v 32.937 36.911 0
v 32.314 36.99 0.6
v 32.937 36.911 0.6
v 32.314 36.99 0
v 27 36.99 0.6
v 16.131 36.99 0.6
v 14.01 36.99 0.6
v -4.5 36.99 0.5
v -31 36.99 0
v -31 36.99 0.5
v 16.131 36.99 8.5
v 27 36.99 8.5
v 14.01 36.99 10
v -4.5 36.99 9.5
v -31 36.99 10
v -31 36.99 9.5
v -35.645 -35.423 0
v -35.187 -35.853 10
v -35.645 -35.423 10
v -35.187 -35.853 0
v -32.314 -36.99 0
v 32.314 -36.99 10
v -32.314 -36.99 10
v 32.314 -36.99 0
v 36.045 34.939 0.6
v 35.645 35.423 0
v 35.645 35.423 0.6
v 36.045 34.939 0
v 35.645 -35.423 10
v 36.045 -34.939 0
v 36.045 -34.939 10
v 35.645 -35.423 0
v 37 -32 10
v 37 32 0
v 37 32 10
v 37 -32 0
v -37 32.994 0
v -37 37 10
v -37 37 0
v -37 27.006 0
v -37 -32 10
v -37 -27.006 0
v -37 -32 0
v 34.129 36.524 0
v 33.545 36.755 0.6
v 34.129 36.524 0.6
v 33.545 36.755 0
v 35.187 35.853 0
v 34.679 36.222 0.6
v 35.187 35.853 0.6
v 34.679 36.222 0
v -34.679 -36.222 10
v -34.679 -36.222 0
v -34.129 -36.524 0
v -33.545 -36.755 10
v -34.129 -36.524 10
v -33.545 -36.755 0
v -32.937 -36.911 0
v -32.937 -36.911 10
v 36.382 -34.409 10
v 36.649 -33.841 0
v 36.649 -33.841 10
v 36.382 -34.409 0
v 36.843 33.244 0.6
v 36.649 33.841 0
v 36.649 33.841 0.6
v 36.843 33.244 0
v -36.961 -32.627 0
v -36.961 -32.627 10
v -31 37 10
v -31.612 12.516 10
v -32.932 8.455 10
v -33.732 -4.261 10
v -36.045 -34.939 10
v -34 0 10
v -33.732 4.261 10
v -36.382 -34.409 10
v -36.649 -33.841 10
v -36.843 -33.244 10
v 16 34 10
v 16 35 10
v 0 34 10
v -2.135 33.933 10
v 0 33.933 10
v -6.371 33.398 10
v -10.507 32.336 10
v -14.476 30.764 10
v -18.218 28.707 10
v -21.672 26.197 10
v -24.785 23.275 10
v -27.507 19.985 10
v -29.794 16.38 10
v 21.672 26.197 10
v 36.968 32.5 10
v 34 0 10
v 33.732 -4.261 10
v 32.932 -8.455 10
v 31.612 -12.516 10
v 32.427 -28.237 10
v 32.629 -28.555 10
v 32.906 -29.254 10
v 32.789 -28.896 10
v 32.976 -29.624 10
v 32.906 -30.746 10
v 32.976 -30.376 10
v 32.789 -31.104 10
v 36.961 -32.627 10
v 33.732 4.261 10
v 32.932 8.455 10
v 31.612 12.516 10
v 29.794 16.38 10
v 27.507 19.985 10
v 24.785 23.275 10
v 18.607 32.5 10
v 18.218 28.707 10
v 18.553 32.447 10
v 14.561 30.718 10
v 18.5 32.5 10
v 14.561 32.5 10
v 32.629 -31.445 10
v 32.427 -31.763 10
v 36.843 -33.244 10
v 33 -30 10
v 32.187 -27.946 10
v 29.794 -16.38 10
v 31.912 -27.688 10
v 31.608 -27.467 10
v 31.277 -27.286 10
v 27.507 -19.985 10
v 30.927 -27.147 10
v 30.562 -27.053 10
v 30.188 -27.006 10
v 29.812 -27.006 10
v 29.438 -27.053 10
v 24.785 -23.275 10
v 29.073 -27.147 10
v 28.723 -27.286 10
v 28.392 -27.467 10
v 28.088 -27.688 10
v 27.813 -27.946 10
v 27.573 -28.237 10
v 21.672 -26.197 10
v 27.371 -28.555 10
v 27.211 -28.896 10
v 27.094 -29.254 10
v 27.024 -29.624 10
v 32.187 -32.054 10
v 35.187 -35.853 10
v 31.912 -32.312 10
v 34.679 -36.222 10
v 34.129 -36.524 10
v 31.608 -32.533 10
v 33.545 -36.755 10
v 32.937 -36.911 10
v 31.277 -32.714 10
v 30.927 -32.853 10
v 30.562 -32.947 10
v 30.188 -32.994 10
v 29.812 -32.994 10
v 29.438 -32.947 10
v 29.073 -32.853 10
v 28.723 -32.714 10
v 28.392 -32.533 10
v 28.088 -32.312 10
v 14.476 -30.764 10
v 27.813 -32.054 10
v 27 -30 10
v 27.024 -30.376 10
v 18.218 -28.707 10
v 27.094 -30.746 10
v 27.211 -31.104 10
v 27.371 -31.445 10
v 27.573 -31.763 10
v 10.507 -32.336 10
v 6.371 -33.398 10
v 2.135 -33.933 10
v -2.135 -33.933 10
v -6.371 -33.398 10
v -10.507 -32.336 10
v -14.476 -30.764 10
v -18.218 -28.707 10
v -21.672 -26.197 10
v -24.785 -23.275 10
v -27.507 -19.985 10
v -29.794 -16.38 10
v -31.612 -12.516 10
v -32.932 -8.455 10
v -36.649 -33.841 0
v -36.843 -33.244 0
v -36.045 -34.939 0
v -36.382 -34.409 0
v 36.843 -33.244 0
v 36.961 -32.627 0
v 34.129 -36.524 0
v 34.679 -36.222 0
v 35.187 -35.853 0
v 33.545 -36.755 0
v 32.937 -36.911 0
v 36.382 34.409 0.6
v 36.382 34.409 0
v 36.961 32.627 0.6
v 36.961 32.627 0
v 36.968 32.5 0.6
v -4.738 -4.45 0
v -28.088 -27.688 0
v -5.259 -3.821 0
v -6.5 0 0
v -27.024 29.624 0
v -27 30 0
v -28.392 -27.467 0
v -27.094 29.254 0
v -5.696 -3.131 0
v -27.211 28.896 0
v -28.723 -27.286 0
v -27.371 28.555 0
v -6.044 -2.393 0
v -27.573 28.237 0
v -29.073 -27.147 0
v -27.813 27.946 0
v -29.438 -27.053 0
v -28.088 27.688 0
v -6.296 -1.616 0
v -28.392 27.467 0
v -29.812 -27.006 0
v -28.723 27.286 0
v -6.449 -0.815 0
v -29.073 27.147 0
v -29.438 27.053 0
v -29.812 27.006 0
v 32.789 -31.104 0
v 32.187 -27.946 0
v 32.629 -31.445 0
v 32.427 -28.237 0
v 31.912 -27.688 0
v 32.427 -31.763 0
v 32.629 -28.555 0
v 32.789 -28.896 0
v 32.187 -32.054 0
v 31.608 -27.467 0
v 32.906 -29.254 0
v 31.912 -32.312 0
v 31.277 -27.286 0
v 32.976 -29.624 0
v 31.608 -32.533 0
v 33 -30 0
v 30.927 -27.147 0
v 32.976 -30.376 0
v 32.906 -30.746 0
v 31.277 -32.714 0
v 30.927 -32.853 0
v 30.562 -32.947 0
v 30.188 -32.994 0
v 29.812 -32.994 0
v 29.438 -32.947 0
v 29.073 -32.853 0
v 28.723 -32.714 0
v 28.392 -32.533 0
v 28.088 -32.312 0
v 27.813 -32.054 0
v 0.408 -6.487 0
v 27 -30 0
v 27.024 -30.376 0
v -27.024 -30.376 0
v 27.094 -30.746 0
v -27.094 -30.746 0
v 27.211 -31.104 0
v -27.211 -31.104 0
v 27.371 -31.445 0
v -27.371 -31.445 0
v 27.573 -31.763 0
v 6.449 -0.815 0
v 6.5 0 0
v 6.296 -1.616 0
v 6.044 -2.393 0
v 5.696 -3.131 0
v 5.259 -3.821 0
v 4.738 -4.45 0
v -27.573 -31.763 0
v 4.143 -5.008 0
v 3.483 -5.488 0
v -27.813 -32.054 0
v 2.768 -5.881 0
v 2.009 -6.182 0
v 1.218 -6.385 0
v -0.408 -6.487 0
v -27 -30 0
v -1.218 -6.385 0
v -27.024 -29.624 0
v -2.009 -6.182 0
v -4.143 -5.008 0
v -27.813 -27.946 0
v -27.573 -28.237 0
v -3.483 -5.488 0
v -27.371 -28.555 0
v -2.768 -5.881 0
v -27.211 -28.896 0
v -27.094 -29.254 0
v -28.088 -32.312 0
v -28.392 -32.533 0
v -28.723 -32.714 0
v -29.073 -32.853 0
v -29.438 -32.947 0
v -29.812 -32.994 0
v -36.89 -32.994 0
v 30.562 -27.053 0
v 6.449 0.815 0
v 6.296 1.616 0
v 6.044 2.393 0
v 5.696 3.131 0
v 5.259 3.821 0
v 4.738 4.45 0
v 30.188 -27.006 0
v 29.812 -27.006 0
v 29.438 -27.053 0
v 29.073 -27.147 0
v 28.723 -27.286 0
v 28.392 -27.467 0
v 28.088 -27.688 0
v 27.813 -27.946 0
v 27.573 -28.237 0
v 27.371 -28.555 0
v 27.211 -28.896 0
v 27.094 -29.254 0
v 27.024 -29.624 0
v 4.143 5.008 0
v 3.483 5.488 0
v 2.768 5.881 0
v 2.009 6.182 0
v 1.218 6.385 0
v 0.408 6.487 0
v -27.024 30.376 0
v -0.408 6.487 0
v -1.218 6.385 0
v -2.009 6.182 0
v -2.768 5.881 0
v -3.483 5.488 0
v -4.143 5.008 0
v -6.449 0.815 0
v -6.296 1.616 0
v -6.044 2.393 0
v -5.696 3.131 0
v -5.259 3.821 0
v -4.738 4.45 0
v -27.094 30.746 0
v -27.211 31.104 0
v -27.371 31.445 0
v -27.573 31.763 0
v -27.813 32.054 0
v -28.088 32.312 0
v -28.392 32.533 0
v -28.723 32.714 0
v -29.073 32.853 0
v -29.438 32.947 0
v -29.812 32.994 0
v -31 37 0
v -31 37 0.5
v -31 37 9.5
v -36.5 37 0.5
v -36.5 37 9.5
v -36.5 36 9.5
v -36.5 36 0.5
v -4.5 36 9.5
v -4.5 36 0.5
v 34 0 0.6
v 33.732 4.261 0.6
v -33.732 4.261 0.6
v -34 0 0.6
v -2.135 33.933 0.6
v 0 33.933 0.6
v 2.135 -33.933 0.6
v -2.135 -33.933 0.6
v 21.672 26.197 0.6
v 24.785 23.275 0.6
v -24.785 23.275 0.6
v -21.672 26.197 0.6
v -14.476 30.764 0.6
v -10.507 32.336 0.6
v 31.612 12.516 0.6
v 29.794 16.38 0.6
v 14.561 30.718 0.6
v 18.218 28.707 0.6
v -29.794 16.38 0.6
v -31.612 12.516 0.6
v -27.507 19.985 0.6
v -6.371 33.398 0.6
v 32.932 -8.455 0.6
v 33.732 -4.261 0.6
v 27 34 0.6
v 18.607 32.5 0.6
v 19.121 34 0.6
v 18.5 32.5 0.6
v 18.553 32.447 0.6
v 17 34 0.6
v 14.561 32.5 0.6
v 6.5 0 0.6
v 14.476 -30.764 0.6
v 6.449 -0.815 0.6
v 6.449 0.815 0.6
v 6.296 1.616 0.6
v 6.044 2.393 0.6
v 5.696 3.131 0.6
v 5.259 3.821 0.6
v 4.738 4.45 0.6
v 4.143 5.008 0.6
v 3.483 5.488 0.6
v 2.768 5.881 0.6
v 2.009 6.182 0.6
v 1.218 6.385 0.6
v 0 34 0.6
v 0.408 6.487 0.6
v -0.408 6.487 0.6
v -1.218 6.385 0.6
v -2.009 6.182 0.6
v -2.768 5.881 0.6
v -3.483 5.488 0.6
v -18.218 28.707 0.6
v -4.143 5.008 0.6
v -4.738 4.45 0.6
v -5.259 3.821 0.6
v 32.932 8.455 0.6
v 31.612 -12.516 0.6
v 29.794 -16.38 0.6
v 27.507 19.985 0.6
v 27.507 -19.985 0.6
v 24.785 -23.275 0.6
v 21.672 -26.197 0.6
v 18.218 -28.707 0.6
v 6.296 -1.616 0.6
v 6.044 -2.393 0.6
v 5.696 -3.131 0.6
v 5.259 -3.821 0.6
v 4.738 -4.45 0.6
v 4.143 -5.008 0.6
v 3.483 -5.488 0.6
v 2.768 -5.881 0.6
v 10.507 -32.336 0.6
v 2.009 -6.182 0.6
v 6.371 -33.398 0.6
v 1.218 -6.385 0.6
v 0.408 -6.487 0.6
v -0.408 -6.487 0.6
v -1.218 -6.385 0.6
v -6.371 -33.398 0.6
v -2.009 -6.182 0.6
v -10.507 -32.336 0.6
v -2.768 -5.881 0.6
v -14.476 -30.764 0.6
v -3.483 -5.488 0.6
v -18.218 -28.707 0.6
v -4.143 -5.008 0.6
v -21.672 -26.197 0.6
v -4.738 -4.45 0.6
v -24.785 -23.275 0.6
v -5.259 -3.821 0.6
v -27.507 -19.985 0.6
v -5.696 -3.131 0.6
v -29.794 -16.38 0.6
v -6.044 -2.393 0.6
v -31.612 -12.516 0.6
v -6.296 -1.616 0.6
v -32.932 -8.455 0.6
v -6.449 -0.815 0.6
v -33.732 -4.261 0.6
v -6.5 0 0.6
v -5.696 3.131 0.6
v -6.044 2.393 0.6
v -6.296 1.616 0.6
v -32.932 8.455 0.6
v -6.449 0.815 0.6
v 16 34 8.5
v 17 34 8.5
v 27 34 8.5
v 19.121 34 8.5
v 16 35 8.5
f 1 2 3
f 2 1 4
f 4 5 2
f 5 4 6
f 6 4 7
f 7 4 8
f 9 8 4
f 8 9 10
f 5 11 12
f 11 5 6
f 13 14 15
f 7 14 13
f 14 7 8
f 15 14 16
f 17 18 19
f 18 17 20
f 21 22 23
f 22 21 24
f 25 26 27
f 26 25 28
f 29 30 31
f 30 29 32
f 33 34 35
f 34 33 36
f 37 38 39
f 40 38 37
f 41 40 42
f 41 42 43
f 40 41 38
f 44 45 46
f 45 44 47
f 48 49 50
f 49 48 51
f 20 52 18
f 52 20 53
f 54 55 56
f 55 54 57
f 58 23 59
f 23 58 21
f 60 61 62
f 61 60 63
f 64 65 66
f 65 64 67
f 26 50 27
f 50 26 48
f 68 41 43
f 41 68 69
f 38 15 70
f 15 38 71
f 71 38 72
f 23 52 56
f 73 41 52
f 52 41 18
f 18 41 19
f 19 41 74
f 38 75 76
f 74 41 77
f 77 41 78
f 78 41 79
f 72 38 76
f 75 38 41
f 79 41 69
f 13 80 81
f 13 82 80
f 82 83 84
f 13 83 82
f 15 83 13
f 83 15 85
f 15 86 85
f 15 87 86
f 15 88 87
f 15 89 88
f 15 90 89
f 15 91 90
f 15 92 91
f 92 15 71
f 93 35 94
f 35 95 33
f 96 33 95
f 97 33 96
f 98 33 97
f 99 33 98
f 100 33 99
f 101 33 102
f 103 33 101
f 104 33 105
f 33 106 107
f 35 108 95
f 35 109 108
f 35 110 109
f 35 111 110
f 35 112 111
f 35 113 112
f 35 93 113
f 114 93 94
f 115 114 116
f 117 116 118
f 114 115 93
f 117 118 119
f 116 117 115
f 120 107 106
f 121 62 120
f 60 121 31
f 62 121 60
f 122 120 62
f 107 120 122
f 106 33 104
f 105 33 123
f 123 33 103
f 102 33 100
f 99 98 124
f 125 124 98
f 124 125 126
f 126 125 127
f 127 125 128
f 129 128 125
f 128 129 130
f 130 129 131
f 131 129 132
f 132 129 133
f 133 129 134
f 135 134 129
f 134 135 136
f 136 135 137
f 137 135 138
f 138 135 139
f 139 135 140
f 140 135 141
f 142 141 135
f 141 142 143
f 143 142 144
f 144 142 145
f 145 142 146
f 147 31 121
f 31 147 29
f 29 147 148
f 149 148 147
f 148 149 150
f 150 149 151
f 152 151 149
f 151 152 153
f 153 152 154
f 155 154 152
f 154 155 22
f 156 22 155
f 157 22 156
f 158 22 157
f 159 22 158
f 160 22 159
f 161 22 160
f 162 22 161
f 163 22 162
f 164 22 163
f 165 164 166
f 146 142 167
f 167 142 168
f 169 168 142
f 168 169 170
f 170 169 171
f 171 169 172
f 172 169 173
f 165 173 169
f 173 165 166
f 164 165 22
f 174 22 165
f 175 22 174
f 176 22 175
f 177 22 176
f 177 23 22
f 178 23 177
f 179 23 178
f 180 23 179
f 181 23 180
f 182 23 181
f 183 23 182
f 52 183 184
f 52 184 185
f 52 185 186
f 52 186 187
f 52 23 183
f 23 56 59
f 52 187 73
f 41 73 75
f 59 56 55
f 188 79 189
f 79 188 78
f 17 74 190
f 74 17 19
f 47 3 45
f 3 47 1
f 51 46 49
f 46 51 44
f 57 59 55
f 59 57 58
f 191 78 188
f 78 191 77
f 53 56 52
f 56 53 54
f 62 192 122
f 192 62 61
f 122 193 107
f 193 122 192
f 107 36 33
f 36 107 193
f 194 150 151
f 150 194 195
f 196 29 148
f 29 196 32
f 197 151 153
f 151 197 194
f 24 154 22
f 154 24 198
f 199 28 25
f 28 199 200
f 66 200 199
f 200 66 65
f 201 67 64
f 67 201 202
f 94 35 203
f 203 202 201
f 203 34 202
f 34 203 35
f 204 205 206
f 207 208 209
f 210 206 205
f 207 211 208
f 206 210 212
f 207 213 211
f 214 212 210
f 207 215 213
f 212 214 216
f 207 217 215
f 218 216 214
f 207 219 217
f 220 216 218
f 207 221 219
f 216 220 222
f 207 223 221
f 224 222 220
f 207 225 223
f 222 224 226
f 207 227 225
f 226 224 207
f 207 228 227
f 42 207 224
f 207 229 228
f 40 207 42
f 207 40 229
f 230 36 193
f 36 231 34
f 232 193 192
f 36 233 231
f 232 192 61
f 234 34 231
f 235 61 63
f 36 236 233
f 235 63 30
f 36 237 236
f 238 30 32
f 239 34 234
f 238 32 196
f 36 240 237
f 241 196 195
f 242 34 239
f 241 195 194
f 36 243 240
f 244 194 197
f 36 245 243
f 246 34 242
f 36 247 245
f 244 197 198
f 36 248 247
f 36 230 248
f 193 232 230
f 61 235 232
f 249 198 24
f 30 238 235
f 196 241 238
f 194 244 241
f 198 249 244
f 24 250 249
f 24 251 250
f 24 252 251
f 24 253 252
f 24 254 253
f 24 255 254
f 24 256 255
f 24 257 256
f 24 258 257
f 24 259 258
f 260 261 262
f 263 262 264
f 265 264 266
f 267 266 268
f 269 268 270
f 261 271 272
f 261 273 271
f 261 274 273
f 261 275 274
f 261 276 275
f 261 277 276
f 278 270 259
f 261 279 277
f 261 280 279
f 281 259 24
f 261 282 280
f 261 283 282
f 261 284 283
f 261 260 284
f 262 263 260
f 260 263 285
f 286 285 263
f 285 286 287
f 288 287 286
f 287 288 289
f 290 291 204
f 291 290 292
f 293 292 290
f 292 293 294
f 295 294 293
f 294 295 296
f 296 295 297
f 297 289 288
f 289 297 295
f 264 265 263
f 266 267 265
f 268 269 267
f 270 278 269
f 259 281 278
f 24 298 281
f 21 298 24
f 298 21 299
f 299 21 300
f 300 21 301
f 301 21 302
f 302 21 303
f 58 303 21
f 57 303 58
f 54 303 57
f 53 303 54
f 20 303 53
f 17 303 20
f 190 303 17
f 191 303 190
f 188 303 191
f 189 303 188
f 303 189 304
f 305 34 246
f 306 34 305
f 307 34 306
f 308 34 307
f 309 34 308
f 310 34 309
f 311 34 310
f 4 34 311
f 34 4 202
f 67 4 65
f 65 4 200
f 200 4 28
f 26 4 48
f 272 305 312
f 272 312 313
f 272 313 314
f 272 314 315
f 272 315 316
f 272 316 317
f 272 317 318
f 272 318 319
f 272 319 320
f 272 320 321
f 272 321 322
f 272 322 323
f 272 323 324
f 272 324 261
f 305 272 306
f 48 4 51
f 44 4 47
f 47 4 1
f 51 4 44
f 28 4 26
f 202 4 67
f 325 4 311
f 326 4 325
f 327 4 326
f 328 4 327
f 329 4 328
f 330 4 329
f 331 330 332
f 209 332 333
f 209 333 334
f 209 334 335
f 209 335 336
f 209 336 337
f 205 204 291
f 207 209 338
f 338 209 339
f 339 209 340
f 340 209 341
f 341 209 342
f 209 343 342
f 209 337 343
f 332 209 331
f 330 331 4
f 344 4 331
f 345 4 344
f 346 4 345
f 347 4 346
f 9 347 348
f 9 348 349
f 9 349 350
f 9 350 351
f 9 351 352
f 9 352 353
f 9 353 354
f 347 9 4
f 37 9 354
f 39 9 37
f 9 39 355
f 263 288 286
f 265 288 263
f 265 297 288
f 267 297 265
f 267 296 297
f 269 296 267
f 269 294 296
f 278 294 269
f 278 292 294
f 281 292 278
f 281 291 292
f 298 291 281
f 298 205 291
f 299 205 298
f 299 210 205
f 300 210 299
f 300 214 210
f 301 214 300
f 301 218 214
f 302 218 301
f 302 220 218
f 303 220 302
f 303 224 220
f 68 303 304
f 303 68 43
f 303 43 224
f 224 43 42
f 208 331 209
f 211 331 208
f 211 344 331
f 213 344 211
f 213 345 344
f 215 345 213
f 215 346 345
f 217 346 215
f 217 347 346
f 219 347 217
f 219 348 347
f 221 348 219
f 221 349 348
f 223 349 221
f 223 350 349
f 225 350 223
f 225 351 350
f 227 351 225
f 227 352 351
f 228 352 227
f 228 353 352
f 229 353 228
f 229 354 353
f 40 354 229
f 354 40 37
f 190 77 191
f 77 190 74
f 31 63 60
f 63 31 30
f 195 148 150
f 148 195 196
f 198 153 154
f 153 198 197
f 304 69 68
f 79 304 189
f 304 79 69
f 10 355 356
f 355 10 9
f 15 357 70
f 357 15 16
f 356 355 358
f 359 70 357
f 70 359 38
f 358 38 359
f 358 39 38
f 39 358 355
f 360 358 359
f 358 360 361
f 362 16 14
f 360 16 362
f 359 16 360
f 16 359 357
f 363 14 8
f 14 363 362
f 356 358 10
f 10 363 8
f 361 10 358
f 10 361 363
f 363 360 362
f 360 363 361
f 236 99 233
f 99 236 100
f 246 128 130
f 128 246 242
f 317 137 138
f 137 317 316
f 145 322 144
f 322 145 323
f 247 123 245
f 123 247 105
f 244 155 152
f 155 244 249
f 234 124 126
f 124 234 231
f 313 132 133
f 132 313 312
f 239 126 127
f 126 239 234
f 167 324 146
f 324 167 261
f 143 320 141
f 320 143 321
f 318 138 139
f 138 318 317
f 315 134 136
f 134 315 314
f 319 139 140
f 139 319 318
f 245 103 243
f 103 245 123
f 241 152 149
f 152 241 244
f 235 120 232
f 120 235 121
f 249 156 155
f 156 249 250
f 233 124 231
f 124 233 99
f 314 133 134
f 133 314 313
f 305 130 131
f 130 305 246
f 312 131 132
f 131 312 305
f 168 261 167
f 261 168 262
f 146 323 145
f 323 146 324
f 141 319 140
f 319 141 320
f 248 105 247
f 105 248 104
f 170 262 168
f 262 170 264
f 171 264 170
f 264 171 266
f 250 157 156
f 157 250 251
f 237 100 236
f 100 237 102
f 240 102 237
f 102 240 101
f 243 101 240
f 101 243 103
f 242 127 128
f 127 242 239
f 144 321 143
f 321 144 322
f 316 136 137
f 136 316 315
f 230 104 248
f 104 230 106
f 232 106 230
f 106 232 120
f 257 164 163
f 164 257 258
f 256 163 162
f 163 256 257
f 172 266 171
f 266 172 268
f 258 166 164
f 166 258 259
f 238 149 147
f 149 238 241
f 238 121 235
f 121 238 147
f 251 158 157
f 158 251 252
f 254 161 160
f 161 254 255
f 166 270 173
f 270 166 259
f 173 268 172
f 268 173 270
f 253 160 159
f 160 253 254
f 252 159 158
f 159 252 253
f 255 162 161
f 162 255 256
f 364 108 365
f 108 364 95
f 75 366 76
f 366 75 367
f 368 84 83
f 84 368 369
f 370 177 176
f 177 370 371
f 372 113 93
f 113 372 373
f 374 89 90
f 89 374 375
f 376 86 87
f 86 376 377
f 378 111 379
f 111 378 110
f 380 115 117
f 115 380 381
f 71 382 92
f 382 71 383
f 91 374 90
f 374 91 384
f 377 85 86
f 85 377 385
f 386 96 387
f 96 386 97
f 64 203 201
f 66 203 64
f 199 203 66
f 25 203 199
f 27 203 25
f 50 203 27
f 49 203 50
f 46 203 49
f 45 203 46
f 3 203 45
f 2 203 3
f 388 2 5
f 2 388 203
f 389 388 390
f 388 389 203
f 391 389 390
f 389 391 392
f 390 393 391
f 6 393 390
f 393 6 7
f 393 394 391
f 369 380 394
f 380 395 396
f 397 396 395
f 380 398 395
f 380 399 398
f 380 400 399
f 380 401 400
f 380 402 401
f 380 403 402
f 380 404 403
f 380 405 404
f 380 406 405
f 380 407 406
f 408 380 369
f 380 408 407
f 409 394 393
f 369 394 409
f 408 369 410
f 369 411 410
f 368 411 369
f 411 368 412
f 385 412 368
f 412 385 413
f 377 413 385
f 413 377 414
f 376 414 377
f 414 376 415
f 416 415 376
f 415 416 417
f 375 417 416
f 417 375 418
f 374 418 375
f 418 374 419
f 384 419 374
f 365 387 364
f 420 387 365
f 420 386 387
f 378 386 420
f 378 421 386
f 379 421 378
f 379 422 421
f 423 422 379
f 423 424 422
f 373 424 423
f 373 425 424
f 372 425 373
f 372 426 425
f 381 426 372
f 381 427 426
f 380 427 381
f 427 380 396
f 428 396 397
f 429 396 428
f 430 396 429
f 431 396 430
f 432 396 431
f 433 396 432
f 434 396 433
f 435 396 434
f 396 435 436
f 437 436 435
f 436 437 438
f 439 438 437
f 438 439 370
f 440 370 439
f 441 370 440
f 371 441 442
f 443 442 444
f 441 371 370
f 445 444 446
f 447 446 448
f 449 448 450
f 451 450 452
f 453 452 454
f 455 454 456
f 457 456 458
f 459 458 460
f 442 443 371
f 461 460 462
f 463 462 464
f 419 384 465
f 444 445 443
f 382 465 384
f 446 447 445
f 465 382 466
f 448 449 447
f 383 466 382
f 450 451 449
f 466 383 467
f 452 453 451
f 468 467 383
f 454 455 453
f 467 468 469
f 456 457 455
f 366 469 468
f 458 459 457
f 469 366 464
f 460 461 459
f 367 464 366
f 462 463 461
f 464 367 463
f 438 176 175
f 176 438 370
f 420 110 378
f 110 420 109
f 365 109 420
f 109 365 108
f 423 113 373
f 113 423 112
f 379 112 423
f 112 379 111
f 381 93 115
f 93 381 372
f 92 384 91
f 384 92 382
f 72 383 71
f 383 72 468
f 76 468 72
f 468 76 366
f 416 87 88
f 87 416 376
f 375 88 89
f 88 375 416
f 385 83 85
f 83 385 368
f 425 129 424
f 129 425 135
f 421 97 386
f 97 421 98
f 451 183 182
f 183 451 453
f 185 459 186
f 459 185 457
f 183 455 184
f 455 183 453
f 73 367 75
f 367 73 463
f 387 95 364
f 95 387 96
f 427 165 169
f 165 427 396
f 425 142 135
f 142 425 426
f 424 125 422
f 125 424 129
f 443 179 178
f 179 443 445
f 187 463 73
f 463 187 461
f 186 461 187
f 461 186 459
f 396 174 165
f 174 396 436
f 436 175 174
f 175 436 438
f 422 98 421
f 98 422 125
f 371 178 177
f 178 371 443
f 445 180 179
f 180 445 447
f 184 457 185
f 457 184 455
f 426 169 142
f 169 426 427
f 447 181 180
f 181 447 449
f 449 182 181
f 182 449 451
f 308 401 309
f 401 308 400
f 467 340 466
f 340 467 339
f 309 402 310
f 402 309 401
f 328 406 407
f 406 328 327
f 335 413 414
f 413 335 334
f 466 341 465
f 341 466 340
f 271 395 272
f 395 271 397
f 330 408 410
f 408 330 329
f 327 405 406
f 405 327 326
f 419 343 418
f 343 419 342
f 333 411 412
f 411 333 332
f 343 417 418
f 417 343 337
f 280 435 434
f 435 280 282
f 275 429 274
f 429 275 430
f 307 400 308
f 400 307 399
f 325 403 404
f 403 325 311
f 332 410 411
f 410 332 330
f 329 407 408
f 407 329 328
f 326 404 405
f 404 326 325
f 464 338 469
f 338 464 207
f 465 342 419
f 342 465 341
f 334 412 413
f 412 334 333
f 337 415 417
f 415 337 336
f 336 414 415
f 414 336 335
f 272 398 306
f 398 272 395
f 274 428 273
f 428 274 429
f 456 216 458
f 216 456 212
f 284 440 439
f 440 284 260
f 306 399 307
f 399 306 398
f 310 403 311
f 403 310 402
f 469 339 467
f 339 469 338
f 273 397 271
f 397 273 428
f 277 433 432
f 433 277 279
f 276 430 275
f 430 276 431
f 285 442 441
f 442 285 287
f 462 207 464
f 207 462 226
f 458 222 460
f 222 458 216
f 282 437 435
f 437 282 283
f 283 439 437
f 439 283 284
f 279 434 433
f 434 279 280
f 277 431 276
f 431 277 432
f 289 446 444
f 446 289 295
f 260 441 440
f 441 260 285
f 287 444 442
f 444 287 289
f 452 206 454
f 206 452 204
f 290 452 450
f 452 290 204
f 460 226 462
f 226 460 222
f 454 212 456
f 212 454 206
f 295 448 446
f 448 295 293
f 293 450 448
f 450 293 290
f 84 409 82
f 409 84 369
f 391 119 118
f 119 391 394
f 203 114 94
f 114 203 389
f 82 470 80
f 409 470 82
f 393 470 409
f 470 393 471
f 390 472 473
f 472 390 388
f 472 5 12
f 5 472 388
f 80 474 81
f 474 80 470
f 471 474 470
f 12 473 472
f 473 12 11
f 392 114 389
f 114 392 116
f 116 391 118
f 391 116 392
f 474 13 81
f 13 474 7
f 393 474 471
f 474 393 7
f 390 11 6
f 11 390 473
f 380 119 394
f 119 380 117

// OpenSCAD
$fn = 50;


difference() {
	union() {
		hull() {
			translate(v = [-32.0000000000, 32.0000000000, 0]) {
				cylinder(h = 10, r = 5);
			}
			translate(v = [32.0000000000, 32.0000000000, 0]) {
				cylinder(h = 10, r = 5);
			}
			translate(v = [-32.0000000000, -32.0000000000, 0]) {
				cylinder(h = 10, r = 5);
			}
			translate(v = [32.0000000000, -32.0000000000, 0]) {
				cylinder(h = 10, r = 5);
			}
		}
		translate(v = [-37.0000000000, 31.0000000000, 0]) {
			cube(size = [6, 6, 10]);
		}
	}
	union() {
		translate(v = [-37.5000000000, -30.0000000000, -250.0000000000]) {
			rotate(a = [0, 0, 0]) {
				difference() {
					union() {
						hull() {
							translate(v = [7.5000000000, 0, 0]) {
								cylinder(h = 250, r = 3.0000000000, r1 = 3.0000000000, r2 = 3.0000000000);
							}
							translate(v = [-7.5000000000, 0, 0]) {
								cylinder(h = 250, r = 3.0000000000, r1 = 3.0000000000, r2 = 3.0000000000);
							}
						}
					}
					union();
				}
			}
		}
		translate(v = [-37.5000000000, 30.0000000000, -250.0000000000]) {
			rotate(a = [0, 0, 0]) {
				difference() {
					union() {
						hull() {
							translate(v = [7.5000000000, 0, 0]) {
								cylinder(h = 250, r = 3.0000000000, r1 = 3.0000000000, r2 = 3.0000000000);
							}
							translate(v = [-7.5000000000, 0, 0]) {
								cylinder(h = 250, r = 3.0000000000, r1 = 3.0000000000, r2 = 3.0000000000);
							}
						}
					}
					union();
				}
			}
		}
		translate(v = [-36.5000000000, 36.0000000000, 0.5000000000]) {
			cube(size = [32, 1, 9.0000000000]);
		}
		translate(v = [30.0000000000, -30.0000000000, -50.0000000000]) {
			cylinder(h = 100, r = 3.0000000000);
		}
		translate(v = [0, 0, 0.6000000000]) {
			cylinder(h = 12.4000000000, r = 34.0000000000);
		}
		translate(v = [0, 0, -5.0000000000]) {
			cylinder(h = 10, r = 6.5000000000);
		}
		translate(v = [0.0000000000, 32.5000000000, 0.6000000000]) {
			cube(size = [37.0000000000, 1.5000000000, 12.4000000000]);
		}
		translate(v = [27.0000000000, 32.5000000000, 0.6000000000]) {
			cube(size = [10, 4.5000000000, 12.4000000000]);
		}
		translate(v = [16.0000000000, 32.5000000000, 8.5000000000]) {
			cube(size = [21, 4.5000000000, 1.5000000000]);
		}
		translate(v = [13.2500000000, 37.7500000000, 0.6000000000]) {
			rotate(a = [0, 0, -45]) {
				cube(size = [7.5000000000, 1.5000000000, 12.4000000000]);
			}
		}
		translate(v = [7.0610000000, 30.5000000000, 0.6000000000]) {
			cube(size = [7.5000000000, 2, 9.4000000000]);
		}
	}
}
